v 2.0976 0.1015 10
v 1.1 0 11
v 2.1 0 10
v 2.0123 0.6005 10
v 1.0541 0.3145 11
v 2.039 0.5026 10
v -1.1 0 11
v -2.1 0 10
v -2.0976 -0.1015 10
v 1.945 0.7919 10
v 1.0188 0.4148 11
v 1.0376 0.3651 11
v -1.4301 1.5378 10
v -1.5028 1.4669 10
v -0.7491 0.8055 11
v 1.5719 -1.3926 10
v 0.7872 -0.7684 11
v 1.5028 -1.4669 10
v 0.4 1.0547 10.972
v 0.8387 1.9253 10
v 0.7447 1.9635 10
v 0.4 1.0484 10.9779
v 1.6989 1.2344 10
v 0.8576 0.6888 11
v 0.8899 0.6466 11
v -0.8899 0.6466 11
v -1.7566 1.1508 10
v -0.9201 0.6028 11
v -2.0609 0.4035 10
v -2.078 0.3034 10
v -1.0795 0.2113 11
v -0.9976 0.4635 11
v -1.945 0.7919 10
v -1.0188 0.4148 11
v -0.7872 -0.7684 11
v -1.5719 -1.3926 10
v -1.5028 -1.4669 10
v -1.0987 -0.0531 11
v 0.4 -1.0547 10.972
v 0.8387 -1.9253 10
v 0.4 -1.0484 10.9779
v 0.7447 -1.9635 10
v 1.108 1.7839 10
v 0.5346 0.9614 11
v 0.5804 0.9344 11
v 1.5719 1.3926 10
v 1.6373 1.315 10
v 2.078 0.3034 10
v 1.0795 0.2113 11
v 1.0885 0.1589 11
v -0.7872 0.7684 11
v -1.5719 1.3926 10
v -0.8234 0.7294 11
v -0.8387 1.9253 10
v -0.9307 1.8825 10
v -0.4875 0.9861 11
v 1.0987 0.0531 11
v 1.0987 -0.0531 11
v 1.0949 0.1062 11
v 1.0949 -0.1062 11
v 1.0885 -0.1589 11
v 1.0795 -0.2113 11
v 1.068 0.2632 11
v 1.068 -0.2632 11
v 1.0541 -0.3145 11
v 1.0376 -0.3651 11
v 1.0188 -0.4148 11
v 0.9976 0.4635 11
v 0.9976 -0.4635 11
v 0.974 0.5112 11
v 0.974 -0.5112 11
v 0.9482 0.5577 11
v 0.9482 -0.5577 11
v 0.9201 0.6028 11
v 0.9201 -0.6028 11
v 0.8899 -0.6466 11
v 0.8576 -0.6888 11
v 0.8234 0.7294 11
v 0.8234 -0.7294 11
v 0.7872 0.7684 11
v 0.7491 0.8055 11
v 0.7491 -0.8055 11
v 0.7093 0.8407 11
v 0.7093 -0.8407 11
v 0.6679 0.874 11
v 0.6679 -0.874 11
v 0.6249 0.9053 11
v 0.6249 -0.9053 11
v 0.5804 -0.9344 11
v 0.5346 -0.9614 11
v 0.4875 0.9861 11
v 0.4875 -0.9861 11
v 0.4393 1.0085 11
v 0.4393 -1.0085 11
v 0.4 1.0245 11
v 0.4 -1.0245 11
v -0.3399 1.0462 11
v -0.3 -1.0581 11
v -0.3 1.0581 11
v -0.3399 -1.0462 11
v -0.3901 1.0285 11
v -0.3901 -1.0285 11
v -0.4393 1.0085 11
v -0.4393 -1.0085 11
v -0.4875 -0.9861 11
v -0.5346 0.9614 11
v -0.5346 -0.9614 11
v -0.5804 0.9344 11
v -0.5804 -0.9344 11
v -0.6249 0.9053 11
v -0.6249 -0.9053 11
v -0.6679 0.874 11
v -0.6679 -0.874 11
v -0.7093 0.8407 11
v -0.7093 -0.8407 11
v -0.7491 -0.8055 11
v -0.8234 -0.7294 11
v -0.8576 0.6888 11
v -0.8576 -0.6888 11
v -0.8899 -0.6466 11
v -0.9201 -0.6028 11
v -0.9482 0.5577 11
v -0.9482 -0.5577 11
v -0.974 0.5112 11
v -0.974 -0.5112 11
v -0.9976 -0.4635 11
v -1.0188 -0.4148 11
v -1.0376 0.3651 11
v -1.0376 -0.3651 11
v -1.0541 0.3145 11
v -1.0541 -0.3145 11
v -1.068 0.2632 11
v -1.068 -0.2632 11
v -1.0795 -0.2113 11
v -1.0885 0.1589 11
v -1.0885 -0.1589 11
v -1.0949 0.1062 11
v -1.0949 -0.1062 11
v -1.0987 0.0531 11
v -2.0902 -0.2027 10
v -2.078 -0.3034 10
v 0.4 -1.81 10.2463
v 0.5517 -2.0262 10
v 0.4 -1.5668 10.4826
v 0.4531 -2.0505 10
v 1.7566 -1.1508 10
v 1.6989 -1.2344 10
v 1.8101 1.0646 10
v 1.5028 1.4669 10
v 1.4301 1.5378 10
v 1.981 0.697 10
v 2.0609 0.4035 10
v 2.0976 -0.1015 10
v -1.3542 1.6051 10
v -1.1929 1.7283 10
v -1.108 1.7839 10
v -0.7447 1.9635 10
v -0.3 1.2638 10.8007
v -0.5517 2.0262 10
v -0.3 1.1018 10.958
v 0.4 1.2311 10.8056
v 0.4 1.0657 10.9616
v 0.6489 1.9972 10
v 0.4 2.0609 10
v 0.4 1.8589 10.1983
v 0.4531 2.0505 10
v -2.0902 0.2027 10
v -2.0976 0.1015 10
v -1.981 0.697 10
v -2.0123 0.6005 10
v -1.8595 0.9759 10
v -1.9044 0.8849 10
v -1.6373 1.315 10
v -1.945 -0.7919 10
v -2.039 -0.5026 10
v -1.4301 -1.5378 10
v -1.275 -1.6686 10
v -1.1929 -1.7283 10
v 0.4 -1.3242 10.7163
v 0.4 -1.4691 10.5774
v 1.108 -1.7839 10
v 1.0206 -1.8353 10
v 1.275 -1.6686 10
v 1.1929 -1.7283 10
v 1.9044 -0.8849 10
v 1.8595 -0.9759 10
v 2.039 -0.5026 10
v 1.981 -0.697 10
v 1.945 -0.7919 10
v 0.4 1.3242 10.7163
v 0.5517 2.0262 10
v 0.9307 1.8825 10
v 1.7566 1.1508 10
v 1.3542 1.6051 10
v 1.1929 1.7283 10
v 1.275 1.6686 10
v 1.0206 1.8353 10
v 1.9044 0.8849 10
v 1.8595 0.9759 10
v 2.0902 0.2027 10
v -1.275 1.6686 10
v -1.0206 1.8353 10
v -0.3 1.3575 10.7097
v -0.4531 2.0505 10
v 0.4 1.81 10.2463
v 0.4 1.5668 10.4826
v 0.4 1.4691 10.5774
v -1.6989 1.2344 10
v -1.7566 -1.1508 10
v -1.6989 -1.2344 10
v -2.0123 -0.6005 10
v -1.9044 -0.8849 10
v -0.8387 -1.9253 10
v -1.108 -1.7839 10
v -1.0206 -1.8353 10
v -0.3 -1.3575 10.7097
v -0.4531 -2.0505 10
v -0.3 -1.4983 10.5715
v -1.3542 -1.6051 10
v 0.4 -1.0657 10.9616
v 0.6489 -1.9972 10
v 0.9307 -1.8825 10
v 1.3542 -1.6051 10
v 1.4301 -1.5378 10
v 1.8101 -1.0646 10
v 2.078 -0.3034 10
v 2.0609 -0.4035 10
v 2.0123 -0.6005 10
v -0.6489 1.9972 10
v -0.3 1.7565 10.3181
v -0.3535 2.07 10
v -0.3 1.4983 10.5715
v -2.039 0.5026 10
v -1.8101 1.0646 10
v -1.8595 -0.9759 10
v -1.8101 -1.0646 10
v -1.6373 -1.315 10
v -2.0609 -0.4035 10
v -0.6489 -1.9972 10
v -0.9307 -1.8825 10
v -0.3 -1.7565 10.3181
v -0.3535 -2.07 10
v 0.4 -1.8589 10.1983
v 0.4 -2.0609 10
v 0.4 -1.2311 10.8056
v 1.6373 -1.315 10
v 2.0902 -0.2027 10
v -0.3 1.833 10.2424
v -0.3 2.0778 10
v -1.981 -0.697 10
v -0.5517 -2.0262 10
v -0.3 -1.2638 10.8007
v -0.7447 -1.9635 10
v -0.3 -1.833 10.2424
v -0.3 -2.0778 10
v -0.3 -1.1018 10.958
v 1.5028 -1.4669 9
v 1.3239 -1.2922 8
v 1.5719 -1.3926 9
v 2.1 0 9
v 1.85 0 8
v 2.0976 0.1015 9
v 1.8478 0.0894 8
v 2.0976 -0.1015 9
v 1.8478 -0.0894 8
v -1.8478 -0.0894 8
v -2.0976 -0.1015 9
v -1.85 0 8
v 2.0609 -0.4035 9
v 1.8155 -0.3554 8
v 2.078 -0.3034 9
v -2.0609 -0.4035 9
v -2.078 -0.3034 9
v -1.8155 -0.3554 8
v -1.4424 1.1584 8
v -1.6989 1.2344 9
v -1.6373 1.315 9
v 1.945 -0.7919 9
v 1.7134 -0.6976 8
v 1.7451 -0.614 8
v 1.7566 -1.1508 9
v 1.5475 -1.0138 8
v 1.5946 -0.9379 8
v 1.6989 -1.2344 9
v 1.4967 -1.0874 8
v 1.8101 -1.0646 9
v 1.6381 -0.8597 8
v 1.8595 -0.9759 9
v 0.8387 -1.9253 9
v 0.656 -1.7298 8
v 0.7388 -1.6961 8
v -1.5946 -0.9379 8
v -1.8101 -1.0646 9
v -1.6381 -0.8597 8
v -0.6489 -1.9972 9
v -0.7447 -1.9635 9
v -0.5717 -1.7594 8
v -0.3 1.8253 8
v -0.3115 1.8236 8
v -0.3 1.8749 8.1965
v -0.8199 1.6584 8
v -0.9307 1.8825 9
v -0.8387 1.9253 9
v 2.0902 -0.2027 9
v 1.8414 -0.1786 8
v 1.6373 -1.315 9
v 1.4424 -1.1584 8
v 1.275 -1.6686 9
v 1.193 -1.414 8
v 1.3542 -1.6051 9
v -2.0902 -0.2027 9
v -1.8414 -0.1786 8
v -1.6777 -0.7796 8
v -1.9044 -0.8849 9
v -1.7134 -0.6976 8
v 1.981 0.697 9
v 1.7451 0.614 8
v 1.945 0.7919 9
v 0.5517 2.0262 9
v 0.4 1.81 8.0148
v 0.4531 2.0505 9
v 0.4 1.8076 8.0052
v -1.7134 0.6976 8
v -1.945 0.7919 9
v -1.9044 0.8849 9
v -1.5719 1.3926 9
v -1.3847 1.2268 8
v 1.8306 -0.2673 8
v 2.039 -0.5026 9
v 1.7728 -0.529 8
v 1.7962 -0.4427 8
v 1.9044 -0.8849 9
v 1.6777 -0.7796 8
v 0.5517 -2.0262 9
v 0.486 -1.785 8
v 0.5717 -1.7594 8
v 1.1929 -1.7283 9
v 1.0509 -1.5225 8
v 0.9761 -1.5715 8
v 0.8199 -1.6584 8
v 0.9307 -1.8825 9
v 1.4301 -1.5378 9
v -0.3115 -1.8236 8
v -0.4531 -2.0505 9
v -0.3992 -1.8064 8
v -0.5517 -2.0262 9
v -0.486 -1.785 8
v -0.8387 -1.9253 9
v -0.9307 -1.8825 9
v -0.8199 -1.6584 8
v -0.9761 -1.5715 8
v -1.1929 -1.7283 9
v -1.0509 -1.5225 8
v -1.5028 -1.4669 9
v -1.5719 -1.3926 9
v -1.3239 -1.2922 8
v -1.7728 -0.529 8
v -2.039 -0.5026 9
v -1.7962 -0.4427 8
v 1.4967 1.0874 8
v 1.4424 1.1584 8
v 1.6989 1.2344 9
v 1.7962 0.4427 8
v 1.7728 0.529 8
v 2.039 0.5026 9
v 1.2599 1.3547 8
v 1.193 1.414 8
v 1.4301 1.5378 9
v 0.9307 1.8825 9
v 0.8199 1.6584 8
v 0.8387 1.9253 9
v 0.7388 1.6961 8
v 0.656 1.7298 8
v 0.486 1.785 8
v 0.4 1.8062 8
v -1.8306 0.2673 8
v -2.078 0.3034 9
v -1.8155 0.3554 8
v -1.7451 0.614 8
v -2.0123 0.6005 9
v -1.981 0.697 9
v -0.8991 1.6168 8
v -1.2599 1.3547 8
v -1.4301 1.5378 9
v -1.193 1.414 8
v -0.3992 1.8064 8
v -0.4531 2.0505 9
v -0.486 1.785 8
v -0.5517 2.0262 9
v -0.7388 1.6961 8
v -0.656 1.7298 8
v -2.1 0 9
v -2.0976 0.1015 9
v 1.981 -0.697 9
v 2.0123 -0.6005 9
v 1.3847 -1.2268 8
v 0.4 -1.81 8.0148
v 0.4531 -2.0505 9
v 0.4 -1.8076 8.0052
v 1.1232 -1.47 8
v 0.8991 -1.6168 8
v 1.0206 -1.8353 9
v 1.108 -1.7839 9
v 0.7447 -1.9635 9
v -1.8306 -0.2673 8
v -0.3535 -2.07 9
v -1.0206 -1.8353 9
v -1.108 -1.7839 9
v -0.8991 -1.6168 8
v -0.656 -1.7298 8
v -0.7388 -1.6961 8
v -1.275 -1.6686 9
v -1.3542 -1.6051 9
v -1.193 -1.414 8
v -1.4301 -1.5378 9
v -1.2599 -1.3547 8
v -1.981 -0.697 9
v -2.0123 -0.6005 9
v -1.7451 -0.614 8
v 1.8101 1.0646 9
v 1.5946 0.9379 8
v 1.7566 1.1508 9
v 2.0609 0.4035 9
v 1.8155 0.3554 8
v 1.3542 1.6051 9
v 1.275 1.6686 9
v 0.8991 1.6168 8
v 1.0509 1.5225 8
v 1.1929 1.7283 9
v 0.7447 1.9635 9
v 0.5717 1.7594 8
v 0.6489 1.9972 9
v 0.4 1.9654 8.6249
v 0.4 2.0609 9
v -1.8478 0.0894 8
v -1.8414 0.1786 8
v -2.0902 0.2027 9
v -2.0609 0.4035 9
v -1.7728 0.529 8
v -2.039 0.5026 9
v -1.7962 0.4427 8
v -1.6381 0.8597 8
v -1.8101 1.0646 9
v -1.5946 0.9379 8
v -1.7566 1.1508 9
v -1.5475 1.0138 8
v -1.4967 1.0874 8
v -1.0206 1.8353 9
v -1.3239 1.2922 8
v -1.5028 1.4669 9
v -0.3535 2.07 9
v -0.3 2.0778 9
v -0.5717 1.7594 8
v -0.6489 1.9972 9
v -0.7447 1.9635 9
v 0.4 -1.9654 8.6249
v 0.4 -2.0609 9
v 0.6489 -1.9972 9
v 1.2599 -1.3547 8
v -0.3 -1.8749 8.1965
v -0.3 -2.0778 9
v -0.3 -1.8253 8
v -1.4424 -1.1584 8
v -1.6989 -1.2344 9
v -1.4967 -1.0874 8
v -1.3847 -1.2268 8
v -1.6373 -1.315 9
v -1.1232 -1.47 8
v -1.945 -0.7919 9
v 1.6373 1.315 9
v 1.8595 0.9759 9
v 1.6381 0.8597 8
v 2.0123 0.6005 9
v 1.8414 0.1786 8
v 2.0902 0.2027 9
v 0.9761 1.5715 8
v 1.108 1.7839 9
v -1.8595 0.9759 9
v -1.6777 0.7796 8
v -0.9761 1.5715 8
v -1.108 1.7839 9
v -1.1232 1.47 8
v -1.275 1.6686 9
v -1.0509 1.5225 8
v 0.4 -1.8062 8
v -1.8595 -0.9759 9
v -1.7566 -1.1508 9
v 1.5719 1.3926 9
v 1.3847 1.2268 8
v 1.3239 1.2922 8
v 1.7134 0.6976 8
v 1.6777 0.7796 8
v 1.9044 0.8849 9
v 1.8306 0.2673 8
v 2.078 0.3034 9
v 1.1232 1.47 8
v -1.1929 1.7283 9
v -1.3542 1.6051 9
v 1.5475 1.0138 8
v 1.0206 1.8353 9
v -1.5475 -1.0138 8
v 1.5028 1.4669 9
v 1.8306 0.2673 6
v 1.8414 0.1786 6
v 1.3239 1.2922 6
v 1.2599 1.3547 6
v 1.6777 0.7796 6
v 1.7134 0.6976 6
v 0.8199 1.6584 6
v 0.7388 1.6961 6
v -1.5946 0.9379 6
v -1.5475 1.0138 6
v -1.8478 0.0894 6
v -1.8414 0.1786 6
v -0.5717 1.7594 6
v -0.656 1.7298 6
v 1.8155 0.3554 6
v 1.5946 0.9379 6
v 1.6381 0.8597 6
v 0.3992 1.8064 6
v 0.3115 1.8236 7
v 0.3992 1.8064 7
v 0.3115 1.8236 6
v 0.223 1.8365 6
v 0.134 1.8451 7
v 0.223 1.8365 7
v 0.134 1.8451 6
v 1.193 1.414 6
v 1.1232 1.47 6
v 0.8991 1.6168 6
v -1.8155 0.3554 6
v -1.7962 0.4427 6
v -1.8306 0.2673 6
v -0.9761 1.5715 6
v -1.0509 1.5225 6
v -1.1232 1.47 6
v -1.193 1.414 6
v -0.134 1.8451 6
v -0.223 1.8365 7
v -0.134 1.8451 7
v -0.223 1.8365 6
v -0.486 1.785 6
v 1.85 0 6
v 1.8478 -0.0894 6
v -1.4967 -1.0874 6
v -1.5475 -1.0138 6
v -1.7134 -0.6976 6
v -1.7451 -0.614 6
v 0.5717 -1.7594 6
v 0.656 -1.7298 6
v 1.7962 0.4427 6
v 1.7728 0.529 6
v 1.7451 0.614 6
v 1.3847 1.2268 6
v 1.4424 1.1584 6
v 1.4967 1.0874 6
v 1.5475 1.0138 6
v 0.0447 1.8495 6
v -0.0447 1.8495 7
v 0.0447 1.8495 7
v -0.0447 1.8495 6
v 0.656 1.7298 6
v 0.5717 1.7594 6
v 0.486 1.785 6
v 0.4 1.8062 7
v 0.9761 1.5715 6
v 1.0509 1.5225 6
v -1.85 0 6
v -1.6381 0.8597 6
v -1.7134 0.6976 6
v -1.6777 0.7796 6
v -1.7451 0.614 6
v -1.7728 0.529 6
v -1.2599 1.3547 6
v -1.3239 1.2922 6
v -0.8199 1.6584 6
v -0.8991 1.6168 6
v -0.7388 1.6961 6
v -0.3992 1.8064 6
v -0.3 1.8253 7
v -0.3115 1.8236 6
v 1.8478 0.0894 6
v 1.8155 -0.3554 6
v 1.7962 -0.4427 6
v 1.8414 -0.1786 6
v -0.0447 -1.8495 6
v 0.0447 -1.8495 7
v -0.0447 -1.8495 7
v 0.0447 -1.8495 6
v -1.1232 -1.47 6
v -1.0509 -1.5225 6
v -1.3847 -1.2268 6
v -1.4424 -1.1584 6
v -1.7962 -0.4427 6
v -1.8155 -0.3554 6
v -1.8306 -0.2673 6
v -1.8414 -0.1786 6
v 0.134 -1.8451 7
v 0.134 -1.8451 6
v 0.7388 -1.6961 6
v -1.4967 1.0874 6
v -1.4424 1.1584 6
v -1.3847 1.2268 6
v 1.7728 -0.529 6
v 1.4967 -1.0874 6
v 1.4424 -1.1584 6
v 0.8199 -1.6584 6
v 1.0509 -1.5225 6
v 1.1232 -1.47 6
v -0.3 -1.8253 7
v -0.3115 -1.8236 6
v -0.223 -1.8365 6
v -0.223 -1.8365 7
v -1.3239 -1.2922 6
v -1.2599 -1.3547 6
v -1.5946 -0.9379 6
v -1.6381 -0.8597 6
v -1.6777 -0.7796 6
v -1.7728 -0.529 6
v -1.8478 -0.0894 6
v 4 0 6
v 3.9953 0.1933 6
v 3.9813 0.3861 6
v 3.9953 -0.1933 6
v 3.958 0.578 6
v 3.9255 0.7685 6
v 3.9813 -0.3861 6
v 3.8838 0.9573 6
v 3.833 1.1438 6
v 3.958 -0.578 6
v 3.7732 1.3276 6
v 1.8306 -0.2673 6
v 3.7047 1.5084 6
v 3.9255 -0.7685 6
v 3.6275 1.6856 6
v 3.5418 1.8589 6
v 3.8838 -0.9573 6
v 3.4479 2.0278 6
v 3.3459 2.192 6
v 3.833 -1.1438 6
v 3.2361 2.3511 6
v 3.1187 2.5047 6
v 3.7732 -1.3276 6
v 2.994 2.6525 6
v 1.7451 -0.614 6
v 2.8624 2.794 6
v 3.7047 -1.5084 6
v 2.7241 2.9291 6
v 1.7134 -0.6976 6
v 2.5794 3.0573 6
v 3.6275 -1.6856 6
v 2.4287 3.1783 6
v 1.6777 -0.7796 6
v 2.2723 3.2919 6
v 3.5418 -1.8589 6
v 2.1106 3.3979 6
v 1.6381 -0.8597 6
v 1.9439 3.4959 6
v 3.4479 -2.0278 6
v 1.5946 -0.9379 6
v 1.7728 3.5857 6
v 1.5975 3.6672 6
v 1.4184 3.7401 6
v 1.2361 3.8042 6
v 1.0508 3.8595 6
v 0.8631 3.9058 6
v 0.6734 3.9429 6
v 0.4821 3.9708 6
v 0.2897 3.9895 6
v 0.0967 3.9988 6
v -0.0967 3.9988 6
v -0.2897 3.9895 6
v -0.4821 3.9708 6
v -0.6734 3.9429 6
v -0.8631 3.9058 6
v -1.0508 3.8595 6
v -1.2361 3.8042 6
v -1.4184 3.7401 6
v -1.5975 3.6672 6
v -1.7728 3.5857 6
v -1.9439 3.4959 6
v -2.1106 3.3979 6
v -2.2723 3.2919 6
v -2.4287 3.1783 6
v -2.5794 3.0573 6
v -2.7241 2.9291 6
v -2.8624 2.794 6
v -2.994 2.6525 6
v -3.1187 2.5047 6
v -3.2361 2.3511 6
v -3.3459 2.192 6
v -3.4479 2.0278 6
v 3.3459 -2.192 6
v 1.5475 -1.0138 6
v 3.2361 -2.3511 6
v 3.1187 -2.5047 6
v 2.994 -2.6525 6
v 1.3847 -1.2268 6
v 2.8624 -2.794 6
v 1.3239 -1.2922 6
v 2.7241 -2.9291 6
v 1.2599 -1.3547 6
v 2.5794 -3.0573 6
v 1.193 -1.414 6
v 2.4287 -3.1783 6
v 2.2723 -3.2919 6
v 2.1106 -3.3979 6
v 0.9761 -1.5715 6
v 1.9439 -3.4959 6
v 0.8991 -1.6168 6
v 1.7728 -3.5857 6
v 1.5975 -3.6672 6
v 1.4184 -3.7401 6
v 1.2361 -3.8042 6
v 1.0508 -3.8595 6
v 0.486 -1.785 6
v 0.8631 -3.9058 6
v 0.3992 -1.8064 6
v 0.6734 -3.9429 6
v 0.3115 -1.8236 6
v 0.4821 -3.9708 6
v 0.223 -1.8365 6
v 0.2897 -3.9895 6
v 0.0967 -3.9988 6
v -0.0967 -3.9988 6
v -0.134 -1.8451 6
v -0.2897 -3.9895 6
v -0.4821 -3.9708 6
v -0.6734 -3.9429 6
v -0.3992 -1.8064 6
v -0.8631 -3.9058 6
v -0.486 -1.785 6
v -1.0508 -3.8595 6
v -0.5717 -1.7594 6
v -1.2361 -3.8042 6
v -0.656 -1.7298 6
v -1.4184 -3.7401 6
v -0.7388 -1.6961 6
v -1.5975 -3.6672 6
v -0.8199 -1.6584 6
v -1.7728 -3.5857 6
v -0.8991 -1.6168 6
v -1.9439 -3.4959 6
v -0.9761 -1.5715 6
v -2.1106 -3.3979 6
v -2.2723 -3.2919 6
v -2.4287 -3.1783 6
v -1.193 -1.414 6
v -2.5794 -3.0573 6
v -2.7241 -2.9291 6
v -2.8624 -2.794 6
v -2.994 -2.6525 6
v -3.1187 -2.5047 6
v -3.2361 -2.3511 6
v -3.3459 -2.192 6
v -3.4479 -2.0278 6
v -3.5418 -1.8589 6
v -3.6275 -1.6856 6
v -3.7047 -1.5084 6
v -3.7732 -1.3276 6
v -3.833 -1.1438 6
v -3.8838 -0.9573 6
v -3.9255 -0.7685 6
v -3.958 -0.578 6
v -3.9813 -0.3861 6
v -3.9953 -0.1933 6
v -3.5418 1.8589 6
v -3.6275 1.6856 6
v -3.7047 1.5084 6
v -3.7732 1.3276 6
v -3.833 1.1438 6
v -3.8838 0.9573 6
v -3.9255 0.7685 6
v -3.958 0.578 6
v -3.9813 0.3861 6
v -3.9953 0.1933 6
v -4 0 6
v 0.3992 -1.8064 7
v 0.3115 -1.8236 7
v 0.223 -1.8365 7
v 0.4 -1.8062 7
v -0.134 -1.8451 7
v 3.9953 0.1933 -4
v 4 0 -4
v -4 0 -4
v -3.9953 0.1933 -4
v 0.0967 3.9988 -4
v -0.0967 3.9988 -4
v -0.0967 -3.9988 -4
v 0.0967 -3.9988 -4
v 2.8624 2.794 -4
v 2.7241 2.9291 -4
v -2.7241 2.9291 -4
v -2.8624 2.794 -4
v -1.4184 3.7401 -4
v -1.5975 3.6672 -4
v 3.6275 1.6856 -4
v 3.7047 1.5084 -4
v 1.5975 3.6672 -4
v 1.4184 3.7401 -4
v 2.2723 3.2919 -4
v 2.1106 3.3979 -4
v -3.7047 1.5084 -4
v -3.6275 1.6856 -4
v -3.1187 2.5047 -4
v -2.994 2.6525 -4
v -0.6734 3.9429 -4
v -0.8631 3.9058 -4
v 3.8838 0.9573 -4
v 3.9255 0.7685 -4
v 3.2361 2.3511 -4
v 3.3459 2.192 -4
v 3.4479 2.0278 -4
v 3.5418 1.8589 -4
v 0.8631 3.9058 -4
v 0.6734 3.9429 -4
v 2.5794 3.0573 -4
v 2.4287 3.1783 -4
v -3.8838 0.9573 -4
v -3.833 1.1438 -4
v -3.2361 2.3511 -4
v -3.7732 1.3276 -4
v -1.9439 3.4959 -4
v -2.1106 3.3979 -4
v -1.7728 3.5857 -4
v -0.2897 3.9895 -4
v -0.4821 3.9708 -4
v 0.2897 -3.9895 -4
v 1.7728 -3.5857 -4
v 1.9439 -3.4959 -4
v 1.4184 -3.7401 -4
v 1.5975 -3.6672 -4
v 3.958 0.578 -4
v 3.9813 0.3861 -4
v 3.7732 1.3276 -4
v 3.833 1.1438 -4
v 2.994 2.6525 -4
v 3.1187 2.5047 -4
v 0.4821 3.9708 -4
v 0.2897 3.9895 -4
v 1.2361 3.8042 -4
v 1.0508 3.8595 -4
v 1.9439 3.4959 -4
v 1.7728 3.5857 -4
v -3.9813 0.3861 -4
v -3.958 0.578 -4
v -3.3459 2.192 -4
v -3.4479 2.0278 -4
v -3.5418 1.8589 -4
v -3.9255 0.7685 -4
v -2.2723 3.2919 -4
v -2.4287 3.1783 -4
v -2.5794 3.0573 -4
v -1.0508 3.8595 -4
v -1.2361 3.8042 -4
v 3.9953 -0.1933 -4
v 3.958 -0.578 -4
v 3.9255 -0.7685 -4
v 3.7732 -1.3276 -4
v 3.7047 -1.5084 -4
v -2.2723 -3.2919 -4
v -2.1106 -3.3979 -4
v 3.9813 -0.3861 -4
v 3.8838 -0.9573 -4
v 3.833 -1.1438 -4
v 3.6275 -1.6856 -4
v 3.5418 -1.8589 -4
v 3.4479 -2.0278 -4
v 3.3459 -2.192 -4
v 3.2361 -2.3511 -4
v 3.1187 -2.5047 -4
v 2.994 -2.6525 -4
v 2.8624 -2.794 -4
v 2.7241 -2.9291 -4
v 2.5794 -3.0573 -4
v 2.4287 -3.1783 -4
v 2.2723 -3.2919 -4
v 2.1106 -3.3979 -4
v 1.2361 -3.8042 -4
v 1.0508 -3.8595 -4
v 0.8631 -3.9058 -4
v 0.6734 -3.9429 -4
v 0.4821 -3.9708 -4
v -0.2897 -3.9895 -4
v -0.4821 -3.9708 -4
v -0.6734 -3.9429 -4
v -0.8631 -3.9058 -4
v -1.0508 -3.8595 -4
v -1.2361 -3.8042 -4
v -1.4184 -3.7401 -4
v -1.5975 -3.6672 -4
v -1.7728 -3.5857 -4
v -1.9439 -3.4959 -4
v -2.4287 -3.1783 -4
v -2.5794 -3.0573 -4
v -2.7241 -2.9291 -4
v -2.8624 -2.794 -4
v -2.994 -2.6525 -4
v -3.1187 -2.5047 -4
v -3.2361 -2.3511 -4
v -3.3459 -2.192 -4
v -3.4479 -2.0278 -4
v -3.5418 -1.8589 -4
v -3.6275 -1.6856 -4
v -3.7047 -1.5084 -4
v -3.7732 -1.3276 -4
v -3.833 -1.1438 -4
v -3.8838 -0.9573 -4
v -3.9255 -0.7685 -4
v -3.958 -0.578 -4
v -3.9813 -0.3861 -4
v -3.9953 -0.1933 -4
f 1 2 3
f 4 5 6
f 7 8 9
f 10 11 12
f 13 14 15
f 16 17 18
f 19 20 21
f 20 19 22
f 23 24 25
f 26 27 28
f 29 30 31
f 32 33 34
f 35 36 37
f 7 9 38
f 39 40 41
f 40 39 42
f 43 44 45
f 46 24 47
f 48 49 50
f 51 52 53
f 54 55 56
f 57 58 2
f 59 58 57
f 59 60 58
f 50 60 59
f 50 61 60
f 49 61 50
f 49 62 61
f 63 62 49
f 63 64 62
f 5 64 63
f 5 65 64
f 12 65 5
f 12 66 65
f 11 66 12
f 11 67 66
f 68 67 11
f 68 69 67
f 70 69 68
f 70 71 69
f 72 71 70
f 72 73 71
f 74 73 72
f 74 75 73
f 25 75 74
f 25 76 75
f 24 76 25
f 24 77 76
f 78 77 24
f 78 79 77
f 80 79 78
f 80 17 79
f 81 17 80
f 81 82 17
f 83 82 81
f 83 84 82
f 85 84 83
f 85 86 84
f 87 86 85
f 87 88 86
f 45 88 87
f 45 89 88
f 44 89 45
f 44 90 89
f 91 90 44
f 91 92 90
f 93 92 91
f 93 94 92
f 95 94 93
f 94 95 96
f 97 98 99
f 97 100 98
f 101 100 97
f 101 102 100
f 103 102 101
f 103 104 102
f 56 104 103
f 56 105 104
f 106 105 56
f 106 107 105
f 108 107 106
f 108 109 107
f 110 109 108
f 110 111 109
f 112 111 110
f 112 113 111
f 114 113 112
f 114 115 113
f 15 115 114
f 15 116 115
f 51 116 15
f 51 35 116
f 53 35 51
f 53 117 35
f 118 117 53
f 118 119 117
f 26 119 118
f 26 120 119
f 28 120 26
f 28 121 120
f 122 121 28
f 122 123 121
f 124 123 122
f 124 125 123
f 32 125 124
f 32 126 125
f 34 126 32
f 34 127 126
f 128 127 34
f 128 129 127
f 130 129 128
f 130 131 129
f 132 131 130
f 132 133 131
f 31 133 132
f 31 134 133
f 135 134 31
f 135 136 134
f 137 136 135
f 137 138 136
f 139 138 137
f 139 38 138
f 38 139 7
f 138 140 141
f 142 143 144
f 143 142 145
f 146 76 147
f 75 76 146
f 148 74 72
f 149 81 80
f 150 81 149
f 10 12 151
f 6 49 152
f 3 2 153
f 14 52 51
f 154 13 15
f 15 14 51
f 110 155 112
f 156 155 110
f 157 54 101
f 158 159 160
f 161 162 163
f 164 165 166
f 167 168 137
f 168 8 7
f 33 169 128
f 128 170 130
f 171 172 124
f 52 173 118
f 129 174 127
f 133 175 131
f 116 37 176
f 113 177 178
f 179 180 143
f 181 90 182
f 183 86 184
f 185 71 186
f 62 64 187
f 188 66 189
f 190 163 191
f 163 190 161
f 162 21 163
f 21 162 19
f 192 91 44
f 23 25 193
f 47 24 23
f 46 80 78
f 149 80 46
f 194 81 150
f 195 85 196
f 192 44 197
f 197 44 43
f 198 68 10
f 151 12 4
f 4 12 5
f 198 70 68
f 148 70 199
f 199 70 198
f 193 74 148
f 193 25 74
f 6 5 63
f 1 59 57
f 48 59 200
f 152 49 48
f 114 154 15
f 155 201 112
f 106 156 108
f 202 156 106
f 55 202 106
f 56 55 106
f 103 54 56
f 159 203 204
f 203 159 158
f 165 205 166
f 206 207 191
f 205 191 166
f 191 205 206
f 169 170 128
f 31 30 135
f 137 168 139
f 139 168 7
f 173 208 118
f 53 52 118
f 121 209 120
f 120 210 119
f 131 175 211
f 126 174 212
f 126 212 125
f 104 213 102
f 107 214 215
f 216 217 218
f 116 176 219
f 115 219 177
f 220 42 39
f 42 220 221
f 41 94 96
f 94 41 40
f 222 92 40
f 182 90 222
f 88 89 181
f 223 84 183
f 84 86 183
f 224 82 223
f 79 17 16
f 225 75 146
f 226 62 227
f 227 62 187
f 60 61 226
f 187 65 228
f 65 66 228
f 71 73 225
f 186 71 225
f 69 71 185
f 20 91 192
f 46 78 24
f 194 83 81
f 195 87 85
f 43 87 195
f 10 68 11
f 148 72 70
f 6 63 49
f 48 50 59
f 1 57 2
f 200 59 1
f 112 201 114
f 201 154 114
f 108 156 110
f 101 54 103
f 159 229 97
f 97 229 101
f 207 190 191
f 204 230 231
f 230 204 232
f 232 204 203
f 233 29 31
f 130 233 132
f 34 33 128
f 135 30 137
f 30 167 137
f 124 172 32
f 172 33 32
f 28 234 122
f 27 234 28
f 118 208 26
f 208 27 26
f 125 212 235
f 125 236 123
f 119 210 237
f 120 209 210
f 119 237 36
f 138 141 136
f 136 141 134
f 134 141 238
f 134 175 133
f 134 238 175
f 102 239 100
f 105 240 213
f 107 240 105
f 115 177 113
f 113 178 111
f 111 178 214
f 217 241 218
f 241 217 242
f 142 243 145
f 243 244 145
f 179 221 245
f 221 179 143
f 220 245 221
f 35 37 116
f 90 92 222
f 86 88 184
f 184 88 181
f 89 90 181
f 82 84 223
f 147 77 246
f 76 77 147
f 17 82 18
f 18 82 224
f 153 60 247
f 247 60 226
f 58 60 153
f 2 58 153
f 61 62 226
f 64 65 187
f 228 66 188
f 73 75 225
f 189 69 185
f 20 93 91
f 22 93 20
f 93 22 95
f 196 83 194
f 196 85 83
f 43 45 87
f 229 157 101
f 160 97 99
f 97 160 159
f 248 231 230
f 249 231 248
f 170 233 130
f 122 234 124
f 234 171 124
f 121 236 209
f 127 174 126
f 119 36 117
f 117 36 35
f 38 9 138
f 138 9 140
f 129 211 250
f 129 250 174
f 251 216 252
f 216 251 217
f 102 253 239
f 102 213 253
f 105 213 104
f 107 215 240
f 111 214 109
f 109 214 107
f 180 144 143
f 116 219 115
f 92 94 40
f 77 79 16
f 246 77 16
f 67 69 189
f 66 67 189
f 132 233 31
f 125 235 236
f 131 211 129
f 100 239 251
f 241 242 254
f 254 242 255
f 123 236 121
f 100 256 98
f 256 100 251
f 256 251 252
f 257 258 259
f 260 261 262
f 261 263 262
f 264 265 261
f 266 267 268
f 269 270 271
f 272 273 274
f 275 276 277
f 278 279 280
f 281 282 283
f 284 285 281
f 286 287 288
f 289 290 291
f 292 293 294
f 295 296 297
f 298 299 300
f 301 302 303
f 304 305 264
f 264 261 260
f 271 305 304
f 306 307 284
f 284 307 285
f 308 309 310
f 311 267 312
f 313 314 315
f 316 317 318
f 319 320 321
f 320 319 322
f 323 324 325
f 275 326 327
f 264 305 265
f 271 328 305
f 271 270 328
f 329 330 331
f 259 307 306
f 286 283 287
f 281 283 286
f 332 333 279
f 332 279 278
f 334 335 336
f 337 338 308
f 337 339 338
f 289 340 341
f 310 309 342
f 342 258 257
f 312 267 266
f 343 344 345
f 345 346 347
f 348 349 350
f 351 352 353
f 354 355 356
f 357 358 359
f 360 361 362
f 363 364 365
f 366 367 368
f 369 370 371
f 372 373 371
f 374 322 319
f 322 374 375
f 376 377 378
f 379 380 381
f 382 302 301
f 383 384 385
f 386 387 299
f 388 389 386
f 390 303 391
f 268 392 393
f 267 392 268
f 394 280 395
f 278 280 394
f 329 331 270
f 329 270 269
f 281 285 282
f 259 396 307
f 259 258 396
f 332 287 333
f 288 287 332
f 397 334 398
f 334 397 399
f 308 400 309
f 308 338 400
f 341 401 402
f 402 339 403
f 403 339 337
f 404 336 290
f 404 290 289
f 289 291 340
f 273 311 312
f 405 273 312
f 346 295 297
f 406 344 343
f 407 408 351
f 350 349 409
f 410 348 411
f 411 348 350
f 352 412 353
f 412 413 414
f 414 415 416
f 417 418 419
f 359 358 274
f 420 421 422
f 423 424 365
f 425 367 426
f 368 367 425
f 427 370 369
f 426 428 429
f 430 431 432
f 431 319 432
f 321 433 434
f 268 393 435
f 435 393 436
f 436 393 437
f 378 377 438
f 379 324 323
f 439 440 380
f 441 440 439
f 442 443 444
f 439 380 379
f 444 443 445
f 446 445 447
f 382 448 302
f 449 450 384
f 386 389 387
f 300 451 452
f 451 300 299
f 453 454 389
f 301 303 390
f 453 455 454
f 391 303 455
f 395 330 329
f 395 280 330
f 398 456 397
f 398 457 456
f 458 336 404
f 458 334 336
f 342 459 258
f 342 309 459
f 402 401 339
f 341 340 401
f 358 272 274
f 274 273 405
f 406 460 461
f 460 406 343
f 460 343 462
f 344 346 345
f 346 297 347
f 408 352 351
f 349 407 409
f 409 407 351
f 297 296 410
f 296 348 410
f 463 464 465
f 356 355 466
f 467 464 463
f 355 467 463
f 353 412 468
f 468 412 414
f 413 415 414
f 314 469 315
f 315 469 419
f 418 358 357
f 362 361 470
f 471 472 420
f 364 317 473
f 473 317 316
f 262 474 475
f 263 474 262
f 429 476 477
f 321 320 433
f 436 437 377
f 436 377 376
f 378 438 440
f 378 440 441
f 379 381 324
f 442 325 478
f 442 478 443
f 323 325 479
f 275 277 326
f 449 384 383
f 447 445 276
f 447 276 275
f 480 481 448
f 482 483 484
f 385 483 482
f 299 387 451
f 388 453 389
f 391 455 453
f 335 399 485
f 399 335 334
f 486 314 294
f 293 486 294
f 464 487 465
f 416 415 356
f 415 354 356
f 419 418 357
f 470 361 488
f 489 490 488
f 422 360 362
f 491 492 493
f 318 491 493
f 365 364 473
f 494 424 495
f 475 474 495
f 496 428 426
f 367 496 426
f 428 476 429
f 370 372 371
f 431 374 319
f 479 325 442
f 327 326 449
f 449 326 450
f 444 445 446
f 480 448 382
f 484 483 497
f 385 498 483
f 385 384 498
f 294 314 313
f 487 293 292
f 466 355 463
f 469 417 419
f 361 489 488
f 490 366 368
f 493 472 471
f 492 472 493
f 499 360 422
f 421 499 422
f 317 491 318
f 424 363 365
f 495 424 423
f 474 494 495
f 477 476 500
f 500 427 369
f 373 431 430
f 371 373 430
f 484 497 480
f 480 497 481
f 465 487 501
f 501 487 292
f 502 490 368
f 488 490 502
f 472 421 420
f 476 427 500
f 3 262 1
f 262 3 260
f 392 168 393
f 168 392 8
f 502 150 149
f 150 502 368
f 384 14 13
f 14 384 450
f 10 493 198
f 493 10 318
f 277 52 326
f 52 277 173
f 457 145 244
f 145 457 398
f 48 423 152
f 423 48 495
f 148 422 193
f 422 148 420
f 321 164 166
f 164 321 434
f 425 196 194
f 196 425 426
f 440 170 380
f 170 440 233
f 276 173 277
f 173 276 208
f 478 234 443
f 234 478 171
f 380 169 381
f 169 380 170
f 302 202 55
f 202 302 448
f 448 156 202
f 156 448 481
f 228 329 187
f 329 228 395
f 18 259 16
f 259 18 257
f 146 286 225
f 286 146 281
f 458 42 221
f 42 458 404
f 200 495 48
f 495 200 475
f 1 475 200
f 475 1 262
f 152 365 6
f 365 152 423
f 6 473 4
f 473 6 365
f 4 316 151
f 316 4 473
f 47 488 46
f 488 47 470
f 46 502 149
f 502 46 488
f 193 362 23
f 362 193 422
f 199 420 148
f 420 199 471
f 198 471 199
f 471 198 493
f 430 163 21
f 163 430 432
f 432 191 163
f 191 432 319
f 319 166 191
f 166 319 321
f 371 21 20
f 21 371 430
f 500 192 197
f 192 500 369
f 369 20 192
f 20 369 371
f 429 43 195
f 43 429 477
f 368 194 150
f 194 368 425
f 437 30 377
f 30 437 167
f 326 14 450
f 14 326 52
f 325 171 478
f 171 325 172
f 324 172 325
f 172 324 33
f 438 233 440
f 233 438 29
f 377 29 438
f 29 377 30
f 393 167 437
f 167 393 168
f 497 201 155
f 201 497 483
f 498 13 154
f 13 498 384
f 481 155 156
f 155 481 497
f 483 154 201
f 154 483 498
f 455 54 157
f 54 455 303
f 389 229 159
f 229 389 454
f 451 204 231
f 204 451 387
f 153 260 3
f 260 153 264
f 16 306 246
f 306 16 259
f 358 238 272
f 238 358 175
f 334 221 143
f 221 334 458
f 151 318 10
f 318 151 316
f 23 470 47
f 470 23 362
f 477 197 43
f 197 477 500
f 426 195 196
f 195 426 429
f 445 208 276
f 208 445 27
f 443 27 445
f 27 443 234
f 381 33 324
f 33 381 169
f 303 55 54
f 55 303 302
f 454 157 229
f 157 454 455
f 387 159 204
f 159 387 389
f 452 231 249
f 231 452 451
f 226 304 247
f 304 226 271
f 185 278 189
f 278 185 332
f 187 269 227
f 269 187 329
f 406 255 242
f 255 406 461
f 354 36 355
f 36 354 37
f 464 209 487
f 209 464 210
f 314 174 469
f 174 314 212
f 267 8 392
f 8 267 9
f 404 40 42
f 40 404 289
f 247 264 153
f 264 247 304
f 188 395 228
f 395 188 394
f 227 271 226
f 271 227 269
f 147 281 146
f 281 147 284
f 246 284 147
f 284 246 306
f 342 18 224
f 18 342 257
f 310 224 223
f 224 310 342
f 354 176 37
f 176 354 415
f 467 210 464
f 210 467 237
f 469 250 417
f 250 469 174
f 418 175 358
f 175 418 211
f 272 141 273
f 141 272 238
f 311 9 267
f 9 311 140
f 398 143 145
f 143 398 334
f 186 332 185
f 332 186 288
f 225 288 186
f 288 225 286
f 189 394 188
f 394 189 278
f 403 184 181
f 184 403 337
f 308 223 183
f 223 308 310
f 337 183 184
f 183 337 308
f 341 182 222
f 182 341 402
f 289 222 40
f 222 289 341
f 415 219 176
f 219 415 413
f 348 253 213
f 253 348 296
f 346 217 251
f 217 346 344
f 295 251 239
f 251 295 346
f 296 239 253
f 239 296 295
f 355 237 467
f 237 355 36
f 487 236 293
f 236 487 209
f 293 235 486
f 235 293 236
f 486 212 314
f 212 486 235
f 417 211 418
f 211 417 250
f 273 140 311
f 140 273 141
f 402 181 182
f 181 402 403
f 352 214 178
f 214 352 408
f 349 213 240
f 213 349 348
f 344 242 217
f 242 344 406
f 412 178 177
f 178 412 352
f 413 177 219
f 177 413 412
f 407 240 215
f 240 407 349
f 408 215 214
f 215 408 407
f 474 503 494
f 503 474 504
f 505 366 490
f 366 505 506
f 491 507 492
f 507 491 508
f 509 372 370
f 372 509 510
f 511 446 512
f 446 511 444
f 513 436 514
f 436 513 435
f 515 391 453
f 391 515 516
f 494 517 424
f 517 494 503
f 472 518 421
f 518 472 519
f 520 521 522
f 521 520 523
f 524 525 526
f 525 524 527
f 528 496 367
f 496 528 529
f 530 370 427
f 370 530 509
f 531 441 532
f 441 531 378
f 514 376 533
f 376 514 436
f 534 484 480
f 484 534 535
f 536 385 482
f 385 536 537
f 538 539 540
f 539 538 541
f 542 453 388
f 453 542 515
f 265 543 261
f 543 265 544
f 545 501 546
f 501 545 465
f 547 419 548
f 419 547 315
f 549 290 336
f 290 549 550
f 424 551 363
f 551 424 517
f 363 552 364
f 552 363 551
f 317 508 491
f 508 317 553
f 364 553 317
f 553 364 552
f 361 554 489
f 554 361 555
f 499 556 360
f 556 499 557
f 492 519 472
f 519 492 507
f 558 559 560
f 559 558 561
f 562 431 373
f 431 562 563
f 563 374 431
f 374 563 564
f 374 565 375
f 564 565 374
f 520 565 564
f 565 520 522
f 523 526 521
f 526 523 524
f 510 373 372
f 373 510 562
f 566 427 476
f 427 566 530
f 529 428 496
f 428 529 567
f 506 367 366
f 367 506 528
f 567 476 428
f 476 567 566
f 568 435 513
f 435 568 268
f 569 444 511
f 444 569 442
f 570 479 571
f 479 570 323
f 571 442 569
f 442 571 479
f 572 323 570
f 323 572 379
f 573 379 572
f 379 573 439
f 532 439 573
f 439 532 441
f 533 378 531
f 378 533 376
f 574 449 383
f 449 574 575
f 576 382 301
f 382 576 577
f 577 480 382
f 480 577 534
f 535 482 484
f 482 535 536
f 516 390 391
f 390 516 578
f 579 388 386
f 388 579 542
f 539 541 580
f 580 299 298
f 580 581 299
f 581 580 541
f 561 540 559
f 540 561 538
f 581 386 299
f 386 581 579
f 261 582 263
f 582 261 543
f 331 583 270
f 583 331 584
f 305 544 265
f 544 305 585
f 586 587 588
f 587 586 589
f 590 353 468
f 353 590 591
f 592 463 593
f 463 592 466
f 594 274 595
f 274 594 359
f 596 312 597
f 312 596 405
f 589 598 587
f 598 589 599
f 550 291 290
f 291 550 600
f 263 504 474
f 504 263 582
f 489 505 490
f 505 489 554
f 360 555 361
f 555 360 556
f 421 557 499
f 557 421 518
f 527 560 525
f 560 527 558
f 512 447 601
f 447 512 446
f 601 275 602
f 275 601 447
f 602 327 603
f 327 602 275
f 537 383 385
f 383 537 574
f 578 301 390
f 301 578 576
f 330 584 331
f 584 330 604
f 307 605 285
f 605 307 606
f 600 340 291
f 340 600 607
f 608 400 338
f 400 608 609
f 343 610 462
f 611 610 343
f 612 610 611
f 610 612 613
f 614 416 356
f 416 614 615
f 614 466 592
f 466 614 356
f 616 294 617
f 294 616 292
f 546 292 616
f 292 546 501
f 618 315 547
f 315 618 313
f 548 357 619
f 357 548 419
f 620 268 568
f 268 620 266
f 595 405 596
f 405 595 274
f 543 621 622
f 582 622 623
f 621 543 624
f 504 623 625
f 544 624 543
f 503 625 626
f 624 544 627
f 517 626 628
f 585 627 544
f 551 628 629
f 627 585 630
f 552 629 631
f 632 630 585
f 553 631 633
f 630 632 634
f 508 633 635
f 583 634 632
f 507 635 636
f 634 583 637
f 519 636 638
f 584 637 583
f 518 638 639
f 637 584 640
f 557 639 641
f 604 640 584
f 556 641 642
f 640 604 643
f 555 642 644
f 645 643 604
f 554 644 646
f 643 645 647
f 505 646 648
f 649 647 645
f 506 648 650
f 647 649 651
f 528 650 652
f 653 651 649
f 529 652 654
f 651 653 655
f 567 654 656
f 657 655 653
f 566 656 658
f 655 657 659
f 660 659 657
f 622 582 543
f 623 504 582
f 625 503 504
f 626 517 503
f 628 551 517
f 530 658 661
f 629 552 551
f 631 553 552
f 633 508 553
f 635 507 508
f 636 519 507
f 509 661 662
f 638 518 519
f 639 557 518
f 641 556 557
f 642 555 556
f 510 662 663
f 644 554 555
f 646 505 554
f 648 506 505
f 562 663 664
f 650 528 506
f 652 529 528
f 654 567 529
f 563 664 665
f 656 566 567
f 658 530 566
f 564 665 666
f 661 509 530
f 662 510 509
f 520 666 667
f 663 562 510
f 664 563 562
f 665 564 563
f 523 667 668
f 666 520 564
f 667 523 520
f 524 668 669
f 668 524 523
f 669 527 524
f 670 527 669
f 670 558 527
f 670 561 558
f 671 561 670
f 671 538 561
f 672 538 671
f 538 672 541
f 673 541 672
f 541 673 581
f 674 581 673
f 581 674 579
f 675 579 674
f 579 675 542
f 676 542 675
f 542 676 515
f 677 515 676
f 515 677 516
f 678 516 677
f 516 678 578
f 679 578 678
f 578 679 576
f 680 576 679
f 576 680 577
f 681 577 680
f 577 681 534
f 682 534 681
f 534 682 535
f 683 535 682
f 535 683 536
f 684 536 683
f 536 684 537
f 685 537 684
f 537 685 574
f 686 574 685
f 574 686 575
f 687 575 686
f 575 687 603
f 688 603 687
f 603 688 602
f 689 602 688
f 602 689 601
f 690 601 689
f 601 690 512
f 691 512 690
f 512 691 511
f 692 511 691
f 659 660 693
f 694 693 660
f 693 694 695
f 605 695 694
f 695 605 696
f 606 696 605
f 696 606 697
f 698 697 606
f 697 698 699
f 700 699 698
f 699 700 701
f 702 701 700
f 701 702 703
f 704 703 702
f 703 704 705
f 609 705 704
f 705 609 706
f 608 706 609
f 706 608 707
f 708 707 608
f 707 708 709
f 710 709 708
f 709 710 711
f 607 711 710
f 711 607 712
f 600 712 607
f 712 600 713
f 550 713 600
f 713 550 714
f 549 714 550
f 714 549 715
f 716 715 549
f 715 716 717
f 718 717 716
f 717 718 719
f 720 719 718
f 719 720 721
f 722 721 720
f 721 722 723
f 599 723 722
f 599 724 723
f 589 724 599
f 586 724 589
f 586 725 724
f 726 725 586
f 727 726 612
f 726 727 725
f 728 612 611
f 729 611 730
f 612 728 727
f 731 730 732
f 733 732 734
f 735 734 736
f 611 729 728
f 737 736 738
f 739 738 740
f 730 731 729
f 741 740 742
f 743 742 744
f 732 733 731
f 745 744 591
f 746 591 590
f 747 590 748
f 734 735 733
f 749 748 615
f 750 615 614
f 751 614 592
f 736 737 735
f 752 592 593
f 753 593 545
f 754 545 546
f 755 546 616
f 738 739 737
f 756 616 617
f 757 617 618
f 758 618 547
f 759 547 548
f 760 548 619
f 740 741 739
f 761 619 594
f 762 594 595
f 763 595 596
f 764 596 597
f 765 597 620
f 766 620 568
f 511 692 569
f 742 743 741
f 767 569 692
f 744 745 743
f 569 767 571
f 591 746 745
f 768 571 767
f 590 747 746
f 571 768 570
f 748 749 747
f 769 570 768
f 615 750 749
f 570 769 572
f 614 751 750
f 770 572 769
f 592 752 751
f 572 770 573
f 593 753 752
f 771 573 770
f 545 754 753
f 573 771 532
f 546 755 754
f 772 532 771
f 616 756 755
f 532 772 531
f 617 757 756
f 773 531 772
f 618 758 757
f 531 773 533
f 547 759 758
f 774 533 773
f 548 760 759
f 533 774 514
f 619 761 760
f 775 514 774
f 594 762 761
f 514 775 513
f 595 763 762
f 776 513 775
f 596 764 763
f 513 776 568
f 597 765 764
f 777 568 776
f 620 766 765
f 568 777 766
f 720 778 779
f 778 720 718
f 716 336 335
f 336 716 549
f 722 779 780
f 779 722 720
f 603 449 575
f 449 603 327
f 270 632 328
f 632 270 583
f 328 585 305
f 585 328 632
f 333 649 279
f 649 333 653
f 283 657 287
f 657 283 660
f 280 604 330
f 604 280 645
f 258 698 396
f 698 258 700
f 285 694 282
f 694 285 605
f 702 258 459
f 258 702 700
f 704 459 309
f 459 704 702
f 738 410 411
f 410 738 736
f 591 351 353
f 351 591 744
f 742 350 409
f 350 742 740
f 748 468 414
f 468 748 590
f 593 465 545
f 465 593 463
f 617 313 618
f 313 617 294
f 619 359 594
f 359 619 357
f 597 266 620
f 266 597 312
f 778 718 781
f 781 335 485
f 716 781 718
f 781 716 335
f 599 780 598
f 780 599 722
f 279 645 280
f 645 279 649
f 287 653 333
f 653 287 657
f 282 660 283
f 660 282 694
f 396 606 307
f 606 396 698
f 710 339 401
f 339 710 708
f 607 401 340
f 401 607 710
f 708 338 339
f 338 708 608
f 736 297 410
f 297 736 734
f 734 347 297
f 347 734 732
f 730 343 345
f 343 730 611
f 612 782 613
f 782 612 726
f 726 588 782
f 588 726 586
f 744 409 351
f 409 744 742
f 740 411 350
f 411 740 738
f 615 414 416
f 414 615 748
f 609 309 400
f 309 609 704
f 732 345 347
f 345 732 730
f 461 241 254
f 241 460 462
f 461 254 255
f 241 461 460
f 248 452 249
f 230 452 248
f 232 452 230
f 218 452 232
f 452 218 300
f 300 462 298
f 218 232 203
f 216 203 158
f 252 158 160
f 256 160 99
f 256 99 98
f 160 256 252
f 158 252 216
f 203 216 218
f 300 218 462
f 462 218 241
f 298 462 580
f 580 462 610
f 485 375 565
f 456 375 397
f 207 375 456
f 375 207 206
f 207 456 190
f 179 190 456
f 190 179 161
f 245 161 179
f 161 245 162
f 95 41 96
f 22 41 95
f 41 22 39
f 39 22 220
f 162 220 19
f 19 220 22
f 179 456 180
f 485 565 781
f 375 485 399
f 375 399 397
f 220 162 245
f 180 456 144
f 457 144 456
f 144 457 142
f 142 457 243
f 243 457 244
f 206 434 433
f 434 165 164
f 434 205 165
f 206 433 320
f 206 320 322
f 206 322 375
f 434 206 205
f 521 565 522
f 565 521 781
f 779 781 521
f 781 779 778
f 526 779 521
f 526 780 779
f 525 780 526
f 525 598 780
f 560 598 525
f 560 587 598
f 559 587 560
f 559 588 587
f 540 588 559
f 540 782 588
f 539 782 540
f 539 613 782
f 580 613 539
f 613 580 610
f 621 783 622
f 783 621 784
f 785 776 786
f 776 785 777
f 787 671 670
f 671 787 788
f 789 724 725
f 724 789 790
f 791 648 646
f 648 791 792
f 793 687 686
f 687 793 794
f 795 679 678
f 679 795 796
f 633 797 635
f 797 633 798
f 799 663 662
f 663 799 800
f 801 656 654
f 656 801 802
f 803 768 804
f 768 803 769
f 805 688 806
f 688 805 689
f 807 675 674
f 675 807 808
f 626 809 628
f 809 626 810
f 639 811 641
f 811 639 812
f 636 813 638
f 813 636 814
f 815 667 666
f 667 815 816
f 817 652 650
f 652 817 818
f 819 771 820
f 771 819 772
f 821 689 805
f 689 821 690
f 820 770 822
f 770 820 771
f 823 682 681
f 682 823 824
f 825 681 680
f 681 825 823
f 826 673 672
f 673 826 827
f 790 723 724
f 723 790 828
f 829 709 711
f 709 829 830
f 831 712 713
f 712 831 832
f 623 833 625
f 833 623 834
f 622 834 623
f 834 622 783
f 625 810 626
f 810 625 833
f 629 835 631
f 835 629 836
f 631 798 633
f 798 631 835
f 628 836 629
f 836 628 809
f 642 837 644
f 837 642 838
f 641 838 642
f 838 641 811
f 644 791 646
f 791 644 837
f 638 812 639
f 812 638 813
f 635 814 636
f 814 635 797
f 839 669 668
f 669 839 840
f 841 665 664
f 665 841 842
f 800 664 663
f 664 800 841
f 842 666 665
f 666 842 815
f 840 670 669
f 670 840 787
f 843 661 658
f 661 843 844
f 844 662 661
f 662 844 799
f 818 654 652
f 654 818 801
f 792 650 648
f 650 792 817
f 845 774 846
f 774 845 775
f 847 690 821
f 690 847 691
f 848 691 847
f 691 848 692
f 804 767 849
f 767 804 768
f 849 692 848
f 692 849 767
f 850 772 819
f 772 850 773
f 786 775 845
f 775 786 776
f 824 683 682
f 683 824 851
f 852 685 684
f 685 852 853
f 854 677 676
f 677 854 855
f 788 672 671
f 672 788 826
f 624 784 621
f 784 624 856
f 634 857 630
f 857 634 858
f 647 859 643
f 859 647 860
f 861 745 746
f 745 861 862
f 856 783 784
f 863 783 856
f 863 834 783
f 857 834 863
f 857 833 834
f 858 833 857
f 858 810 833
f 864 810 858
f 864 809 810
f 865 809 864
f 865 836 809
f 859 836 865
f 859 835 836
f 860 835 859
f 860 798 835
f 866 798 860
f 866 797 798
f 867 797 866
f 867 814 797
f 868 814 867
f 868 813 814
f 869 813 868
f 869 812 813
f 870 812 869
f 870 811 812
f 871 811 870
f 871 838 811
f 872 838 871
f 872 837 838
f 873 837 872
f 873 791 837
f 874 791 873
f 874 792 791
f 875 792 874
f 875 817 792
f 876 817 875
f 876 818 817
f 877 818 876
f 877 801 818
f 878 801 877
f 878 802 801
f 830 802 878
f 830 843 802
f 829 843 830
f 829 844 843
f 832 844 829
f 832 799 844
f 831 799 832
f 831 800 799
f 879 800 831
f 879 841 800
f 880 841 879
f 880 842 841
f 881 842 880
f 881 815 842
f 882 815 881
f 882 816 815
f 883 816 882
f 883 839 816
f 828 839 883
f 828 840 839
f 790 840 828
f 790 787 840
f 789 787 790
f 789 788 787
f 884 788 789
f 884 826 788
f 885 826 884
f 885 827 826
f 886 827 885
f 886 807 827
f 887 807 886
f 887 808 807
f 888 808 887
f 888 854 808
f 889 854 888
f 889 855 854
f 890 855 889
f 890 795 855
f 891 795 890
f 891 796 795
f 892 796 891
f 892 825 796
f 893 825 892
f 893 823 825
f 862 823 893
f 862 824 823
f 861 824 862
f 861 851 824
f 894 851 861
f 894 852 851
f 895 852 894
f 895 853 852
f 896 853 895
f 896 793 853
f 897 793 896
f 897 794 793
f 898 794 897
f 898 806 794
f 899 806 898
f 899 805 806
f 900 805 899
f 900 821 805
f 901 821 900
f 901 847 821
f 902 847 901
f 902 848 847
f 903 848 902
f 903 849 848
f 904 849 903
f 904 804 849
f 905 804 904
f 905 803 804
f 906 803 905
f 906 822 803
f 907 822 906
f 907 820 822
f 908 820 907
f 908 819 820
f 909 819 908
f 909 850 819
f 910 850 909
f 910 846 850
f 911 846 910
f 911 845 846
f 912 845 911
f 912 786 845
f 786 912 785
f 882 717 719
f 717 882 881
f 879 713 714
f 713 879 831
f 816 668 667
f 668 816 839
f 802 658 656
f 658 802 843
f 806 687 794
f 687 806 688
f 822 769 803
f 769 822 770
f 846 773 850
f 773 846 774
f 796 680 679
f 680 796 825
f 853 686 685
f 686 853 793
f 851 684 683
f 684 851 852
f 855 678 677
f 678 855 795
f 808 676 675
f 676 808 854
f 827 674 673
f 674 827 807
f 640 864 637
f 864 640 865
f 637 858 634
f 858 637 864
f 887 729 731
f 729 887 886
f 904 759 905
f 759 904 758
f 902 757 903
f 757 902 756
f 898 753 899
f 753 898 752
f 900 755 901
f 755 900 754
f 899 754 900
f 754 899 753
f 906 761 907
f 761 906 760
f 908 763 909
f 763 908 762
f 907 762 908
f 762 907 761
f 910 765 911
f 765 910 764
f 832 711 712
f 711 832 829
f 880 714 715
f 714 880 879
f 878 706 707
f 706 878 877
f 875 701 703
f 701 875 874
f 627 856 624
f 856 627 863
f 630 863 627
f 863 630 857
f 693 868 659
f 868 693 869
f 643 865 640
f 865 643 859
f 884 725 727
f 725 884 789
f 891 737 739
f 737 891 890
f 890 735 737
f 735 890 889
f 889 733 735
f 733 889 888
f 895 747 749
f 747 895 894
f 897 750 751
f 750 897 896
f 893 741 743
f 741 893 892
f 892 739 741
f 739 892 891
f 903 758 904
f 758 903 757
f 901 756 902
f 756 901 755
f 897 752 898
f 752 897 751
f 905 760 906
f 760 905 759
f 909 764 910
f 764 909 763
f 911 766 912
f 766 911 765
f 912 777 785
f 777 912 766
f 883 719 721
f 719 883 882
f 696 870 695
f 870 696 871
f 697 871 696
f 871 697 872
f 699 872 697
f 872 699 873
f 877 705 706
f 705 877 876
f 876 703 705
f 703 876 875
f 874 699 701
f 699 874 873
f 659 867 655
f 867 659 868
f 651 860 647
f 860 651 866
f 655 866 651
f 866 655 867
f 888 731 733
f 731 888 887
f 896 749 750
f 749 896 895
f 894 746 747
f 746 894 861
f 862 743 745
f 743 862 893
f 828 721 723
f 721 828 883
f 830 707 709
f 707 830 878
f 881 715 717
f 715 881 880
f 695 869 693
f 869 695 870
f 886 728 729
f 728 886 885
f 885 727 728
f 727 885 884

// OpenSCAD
$fn=130;

D_sock=8; //Sockeldurchmesser
D_kubb=4.2;  //Knubbeldurchmesser
H_sock=10; //Sockelhöhe
//Schaftdurchmesser=Knubbeldurchmesser-0.5

//Sockel
H=H_sock-6;color("Gray")
translate([0,0,H*-1])
cylinder (h=H_sock, d=D_sock);

difference(){

//Knubbl
color("Silver")       
union(){
translate([0,0,10])
cylinder (h=1, d1=D_kubb, d2=D_kubb-2);
translate([0,0,8])
cylinder (h=1, d1=D_kubb-0.5, d2=D_kubb);
translate([0,0,9])
cylinder (h=1, d1=D_kubb, d2=D_kubb);
//Schaft
translate([0,0,6])
cylinder (h=2, d=D_kubb-0.5);   
}


//Einschnitt
translate([-0.3,-2.5,7])
 cube([0.7,5,7]);
}
